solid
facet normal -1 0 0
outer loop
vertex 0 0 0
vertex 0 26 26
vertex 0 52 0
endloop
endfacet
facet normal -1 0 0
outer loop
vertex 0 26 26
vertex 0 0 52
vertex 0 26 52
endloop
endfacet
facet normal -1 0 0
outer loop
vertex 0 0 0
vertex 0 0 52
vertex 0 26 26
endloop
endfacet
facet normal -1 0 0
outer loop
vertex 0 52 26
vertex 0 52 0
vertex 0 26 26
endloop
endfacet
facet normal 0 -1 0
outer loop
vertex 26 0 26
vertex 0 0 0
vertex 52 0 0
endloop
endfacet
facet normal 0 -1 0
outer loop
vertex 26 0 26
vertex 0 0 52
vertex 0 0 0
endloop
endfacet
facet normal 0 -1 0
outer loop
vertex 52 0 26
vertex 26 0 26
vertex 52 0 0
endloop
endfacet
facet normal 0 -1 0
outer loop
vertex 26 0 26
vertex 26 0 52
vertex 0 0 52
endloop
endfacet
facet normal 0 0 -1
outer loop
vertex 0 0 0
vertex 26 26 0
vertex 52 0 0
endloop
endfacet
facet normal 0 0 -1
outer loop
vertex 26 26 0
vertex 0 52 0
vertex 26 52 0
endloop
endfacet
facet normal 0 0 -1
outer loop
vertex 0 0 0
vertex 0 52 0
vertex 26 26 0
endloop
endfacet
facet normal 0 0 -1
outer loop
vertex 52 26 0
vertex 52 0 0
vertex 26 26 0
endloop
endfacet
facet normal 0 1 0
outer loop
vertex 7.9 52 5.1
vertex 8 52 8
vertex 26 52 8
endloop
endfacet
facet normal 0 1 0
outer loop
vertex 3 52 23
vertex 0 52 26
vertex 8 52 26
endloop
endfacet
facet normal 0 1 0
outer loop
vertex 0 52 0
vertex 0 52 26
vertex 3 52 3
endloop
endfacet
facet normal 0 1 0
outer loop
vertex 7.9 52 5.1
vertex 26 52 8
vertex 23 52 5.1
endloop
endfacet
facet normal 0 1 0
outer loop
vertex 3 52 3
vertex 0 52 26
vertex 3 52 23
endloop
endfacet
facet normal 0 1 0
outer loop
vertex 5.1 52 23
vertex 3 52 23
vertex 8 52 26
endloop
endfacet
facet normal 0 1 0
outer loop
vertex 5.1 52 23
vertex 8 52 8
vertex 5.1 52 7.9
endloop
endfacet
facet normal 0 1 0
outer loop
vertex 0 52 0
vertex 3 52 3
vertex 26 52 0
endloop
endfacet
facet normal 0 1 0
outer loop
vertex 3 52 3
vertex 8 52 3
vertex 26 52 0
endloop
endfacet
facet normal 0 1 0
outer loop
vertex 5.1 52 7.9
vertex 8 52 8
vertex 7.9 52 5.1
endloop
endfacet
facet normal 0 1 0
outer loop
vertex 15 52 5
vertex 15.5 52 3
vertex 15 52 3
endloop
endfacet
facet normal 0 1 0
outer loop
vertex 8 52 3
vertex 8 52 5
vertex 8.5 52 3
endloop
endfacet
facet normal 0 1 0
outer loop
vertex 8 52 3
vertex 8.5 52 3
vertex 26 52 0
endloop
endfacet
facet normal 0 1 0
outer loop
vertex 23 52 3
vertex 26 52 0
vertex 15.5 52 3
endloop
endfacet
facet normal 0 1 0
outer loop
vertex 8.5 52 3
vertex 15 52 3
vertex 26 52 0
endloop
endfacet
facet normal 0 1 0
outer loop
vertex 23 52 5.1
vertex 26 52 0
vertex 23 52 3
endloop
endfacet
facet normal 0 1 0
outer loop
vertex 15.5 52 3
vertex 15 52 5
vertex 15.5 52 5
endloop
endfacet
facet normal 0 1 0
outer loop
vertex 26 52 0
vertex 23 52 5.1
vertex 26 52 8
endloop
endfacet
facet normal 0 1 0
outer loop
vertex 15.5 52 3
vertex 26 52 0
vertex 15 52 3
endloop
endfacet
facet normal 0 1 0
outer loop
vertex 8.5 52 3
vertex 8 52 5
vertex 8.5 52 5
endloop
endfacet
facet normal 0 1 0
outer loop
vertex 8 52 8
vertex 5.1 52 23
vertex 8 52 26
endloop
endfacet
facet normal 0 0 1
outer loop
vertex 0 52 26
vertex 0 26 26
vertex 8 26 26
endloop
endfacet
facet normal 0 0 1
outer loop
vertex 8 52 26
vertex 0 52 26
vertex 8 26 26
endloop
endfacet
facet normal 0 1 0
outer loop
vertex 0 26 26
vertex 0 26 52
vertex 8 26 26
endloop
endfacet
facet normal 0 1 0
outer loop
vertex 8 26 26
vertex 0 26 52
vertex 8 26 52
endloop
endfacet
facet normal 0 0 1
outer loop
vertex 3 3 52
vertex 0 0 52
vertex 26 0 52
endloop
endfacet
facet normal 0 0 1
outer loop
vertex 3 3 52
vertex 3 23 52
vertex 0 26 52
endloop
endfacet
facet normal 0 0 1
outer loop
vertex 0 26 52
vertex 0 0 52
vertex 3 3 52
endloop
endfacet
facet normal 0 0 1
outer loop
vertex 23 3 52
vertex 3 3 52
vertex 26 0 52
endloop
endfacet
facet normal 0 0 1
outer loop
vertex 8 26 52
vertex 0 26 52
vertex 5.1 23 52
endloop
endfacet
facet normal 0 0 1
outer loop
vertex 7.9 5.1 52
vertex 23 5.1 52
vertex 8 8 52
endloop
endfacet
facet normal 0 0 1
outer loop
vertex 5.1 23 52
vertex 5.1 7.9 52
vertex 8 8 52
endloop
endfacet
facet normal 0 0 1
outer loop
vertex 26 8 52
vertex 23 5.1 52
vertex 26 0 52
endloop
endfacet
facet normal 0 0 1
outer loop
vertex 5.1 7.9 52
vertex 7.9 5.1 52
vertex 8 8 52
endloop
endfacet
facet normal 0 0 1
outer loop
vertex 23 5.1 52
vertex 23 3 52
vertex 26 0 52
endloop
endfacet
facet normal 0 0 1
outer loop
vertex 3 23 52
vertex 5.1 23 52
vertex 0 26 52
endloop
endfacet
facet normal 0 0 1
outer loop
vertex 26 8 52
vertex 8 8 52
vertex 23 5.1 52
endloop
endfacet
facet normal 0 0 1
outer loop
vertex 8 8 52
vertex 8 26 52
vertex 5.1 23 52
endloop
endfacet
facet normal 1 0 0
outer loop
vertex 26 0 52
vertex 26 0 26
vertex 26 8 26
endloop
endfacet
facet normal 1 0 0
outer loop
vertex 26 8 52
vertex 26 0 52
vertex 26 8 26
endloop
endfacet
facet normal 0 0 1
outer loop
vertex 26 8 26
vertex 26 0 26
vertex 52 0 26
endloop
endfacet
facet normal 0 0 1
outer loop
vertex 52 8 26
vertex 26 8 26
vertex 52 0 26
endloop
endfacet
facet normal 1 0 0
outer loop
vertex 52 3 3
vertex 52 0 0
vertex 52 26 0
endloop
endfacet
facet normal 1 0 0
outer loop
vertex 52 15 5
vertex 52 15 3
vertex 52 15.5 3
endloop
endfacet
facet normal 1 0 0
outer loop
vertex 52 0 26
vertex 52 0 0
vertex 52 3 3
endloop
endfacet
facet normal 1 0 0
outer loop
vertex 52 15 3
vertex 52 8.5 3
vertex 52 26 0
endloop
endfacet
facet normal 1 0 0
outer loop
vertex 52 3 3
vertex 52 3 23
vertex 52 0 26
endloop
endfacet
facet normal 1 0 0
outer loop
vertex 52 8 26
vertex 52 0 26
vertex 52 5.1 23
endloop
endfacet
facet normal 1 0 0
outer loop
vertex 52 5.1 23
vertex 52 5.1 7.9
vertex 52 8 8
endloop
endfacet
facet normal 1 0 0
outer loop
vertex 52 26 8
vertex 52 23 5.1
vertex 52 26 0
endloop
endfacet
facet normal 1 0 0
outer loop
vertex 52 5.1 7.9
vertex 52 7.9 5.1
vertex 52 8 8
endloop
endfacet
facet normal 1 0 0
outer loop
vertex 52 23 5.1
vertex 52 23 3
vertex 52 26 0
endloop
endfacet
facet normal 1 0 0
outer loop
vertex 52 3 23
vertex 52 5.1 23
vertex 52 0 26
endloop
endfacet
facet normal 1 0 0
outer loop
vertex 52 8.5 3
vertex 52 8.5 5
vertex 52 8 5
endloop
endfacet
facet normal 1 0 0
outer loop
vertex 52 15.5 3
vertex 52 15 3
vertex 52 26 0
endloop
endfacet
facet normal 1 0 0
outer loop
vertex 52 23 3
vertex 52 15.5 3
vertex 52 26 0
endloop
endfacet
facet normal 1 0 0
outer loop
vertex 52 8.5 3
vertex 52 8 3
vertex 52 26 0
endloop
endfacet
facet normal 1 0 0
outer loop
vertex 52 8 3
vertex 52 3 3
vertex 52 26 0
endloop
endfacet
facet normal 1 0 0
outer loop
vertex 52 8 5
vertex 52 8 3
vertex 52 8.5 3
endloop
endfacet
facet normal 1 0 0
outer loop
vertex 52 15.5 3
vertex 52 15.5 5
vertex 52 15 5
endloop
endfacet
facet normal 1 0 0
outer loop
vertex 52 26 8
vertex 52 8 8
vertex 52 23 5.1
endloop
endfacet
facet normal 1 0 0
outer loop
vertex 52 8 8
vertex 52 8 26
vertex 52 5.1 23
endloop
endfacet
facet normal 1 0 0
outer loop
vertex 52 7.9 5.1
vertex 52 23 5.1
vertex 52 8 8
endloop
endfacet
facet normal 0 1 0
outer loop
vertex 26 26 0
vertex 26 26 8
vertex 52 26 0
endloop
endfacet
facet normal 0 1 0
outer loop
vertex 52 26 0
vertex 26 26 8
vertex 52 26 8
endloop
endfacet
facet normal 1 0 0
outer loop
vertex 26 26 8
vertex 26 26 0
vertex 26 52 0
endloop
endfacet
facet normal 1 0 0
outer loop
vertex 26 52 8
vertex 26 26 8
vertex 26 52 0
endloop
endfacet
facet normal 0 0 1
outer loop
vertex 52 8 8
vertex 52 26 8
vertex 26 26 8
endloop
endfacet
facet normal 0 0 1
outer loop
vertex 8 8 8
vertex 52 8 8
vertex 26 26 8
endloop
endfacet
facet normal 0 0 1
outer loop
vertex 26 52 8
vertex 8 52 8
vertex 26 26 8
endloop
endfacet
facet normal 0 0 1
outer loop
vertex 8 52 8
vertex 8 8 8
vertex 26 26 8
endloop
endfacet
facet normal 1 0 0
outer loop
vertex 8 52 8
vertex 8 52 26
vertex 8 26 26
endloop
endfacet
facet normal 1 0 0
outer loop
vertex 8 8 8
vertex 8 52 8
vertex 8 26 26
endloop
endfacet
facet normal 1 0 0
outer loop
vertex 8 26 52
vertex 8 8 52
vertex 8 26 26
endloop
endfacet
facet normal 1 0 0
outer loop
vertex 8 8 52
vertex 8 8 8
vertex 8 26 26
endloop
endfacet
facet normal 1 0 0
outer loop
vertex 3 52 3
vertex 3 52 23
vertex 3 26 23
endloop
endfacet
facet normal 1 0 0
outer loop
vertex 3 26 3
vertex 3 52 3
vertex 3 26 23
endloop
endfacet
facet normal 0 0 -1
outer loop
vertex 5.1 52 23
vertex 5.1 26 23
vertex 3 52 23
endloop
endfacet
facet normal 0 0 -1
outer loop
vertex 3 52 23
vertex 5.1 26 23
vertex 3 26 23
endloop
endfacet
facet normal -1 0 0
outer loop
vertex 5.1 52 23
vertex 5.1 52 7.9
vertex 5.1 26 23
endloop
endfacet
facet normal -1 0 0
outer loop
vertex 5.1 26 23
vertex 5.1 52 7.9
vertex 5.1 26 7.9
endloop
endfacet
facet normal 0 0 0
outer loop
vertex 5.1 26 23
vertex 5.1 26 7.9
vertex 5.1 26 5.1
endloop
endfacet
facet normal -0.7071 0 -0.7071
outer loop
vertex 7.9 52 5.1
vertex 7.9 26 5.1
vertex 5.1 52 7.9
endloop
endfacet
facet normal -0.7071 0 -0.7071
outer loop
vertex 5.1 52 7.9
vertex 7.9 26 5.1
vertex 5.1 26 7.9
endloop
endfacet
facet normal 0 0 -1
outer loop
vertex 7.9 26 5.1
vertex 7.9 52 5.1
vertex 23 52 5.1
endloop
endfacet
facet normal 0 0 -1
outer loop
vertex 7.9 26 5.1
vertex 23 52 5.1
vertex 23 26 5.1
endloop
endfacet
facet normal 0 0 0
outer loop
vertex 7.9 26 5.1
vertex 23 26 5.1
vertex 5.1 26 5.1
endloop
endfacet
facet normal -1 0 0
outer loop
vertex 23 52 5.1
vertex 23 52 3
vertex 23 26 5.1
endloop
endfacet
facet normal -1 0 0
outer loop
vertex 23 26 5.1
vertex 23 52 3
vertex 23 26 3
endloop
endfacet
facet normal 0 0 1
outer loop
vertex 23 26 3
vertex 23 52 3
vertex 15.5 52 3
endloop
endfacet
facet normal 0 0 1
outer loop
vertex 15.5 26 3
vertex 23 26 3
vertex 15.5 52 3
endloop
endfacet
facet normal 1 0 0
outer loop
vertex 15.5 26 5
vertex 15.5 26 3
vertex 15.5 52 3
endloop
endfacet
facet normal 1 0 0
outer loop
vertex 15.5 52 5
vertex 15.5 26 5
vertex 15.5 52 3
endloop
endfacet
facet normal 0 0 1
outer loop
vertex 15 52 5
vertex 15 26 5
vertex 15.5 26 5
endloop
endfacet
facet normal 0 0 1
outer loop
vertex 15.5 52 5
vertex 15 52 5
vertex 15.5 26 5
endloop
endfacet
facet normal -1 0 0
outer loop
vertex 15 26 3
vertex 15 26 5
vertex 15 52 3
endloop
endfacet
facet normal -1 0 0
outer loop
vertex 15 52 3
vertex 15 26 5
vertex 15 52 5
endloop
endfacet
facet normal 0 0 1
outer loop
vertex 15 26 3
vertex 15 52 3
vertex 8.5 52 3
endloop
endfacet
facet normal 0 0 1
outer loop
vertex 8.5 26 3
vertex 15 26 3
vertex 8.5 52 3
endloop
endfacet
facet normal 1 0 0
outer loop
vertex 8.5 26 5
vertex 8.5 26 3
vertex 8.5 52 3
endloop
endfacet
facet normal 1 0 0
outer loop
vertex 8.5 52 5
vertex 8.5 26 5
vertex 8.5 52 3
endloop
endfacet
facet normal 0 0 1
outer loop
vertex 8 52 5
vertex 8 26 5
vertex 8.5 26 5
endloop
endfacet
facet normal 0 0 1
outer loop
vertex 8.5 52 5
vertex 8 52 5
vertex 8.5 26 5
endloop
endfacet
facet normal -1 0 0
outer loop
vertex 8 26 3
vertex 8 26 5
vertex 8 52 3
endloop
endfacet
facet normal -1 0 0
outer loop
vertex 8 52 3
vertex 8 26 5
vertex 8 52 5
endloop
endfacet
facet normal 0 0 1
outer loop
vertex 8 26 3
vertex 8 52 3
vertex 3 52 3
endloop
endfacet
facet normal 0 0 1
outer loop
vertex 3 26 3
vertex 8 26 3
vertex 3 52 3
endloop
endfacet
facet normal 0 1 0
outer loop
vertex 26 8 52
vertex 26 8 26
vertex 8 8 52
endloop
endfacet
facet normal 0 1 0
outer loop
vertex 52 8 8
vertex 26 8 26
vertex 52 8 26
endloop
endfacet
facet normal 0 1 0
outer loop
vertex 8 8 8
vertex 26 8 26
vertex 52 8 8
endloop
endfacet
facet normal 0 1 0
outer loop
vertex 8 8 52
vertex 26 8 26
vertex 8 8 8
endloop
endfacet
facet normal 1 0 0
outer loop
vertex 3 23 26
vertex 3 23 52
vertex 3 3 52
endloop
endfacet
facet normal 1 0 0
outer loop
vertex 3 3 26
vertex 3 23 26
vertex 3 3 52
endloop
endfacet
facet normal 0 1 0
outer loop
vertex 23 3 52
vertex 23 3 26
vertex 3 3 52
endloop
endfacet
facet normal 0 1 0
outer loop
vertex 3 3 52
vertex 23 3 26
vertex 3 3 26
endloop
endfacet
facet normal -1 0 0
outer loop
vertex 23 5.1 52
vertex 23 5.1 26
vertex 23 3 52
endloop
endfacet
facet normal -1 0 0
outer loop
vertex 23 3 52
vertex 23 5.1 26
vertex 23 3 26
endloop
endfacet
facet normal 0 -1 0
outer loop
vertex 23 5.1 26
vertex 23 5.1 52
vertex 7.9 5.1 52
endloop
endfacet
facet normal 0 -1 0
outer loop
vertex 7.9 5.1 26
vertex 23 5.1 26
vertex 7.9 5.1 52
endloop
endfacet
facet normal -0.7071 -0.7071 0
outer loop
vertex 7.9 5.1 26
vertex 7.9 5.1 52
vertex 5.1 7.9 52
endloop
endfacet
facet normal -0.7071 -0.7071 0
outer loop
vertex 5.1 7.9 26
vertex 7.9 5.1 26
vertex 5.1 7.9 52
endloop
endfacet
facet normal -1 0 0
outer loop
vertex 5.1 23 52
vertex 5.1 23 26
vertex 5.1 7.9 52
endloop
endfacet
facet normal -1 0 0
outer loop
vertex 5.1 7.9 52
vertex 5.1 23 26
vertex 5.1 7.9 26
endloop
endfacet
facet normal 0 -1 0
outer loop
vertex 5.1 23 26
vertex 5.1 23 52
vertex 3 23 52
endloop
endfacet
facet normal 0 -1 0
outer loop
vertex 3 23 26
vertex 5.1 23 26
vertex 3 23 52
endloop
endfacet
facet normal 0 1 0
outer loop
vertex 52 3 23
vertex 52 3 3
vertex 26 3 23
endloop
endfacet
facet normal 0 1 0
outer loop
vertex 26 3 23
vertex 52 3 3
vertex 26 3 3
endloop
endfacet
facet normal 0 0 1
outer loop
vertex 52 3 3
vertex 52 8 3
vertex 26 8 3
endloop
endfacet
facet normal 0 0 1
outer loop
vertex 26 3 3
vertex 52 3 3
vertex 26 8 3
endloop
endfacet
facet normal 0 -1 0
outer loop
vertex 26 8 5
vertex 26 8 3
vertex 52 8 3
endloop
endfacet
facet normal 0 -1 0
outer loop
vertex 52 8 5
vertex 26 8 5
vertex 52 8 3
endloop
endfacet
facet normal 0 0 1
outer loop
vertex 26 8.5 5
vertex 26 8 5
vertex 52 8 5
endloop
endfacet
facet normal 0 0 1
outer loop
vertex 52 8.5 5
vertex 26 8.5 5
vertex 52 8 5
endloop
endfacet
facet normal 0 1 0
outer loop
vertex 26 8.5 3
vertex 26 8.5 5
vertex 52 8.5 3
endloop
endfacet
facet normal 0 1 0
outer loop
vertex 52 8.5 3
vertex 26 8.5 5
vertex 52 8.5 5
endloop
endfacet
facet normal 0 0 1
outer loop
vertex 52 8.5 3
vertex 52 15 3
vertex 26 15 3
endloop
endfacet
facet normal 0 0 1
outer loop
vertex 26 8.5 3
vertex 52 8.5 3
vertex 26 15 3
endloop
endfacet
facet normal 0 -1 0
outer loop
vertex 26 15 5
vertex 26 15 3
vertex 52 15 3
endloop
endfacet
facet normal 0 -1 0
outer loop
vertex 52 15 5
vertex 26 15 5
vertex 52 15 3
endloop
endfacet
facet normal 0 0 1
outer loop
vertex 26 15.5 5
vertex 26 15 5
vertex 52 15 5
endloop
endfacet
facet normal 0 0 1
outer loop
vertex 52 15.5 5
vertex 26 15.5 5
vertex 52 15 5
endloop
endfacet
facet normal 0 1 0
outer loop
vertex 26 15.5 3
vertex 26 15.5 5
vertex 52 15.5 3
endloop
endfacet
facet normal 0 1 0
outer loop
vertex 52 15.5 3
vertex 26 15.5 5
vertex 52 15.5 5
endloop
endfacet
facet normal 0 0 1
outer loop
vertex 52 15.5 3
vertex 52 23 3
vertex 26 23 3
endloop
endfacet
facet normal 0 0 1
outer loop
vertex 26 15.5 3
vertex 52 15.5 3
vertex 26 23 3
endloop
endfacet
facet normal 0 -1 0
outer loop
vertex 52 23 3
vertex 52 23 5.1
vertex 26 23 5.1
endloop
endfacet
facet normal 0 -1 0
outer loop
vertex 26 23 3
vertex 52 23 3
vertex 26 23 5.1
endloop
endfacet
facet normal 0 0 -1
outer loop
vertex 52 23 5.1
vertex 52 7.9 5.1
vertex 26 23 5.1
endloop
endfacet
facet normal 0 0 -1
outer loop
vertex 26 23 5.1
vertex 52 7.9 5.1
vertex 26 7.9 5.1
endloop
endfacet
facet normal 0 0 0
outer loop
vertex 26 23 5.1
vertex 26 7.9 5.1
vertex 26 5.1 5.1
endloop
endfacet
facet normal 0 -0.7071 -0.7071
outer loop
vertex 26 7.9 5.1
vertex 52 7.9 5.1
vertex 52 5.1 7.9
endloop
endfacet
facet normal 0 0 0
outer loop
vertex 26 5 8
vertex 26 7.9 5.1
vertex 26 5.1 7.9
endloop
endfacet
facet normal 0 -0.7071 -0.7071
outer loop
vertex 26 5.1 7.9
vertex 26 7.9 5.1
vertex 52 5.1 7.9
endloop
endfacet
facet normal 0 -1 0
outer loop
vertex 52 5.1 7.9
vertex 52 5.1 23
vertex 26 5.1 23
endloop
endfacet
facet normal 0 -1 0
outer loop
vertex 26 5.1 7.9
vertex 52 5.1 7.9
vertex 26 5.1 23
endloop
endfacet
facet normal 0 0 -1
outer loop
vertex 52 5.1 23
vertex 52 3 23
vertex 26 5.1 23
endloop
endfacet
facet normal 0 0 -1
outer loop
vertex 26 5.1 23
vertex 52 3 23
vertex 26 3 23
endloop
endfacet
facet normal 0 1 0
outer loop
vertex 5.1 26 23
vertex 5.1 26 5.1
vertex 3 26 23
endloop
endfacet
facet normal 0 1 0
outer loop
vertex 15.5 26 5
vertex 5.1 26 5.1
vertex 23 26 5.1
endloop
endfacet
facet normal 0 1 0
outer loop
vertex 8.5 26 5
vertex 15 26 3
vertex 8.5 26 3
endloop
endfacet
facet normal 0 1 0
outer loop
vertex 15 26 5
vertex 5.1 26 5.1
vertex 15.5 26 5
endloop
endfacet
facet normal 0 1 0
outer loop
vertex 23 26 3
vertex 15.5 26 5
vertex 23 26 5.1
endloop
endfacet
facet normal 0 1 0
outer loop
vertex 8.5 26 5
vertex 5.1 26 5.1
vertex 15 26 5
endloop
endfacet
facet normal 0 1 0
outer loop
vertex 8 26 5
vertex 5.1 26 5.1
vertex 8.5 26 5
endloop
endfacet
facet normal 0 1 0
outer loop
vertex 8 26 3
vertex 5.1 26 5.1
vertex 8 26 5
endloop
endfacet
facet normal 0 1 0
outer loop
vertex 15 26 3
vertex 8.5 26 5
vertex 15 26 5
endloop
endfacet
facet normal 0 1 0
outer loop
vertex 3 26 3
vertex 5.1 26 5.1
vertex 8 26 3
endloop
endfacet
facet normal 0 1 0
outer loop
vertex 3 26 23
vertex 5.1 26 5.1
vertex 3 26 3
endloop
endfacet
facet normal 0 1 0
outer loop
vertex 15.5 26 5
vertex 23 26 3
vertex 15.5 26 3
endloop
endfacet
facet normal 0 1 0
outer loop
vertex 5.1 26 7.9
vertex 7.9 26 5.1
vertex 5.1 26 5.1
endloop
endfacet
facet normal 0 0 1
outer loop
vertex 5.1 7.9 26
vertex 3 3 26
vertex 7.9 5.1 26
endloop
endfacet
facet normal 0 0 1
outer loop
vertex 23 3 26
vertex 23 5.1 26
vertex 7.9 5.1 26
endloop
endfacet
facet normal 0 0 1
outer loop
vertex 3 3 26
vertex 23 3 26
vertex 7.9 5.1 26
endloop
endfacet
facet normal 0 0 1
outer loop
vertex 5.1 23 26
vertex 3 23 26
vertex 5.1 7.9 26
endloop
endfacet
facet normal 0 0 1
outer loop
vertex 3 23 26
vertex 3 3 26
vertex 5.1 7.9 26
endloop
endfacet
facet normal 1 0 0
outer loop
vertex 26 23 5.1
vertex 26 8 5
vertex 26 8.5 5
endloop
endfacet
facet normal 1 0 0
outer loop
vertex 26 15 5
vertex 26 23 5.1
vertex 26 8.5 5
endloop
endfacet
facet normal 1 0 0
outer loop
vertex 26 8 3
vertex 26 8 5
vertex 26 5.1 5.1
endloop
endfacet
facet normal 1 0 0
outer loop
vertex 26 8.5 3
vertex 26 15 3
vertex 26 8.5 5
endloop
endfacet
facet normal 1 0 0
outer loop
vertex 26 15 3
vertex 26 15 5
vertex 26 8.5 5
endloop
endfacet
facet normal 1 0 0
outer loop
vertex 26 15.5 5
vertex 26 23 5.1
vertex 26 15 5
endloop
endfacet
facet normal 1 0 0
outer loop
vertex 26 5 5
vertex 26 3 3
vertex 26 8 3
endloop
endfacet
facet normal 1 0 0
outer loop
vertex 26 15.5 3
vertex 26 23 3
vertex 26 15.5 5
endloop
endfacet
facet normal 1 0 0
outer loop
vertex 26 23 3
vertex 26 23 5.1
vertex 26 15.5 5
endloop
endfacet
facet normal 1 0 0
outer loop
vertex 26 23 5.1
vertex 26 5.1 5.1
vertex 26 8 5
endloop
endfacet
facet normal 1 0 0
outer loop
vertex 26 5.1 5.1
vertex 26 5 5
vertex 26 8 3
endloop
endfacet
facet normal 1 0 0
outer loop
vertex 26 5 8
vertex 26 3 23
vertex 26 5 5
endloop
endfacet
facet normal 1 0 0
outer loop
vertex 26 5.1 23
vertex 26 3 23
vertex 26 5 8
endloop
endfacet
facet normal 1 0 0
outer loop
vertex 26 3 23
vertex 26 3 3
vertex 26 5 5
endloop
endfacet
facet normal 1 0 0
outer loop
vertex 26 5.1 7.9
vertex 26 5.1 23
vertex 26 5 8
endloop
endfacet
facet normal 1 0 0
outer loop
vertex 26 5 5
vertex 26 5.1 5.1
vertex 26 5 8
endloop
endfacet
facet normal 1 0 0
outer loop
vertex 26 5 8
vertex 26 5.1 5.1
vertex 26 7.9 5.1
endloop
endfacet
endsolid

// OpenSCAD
// file: ../PrusaI3/primitives.scad
module triangular_prism_rect(b, h, l, c = false) {
  linear_extrude(height = l, center = c, convexity = 10, twist = 0)
  polygon(points=[[0,0],[b,0],[0,h]], paths=[[0,1,2]]);
}

module triangular_prism(b, h, l, c = false) {
  linear_extrude(height = l, center = c, convexity = 10, twist = 0)
  polygon(points=[[-b/2,0],[b/2,0],[0,h]], paths=[[0,1,2]]);
}
translate([0,15,0]) triangular_prism(4,2,40);
// main file
use <../PrusaI3/primitives.scad>

module connector(w, t, wall) {
  wc = w + 2 * wall;

color("yellow") {translate([wc, wall+5,wall]) cube([wc,0.5,t]);
translate([wc, wall+5+7,wall]) cube([wc,0.5,t]);
}

color("yellow") {translate([ wall+5,wc, wall]) cube([0.5,wc, t]);
translate([wall+5+7,wc,wall]) cube([0.5,wc, t]);
}

//  color("lightblue")
difference() {
    union() {
      cube([wc,wc,wc]);
      difference() {
       cube([2 * wc,2 * wc, wall + t]);
        translate([wc-0.1, wc-0.1, -0.1]) 
			 cube([wc+0.2,wc+0.2, wall + t+.4]);
      }
      difference() {
        cube([2 * wc, wall + t, 2 * wc]);
        translate([wc-0.2, -0.2, wc-0.2]) 
			 cube([wc+0.3, wall + t+.3,wc+0.3]);

      }
      difference() {
        cube([wall + t, 2 * wc, 2 * wc]);
        translate([ -0.1, wc-0.1, wc-0.1]) 
			 cube([wall + t+.2, wc+0.2, wc+0.2]);
      }

      translate([wc,0,0]) cube([wc,wc,wc]);
      translate([0,wc,0]) cube([wc,wc,wc]);
      translate([0,0,wc]) cube([wc,wc,wc]);
    }
translate([wc, wall+t, wall + t]) rotate([90,0,90]) triangular_prism_rect(3,3,wc+.1);


translate([ wall+t,2*wc+.1,  wall + t]) rotate([90,0,0]) triangular_prism_rect(3,3,wc+.1);

translate([wall+t, wall + t,wc]) rotate([0,0,0]) triangular_prism_rect(3,3,wc+.1);

    translate([2*wall+t,2*wall+t,2*wall+t]) cube([2*wc,2*wc,2*wc]);
    union() {
      translate([wc,wall,wall]) cube([wc+0.1+5, w, t+0.1]);
      translate([wc,wall,wall]) cube([wc+0.1+5, t+0.1, w]);
    }
    union() {
      translate([wall,wc,wall]) cube([w, wc+0.1+5, t+0.1]);
      translate([wall,wc,wall]) cube([t+0.1, wc+0.1+5, w]);
    }
    union() {
      translate([wall,wall,wc]) cube([w, t+0.1, wc+0.1+5]);
      translate([wall,wall,wc]) cube([t+0.1, w, wc+0.1+5]);
    }
  }
}

module bar_angle(w, t, len) {
  color("silver")
  union() {
    cube([len, w, t]);
    cube([len, t, w]);
  }
}



w = 20;
wall = 3;
wc = w + 2 * wall;
t = 2;
ta = 1.26; 
depth = 500;
width = 455.4;
connector(w, t, wall);
//translate([-5,-5,0]) rotate([0,0,180]) connector(w, t, wall);
//translate([-5,0,0]) rotate([0,0,90]) connector(w, t, wall);
//translate([0,-5,0]) rotate([0,0,-90]) connector(w, t, wall);


//translate([0,width,0]) rotate([0,0,-90]) connector(w, t, wall);
//translate([depth,0,0]) rotate([0,0,90]) connector(w, t, wall);
//translate([depth,width,0]) rotate([0,0,180]) connector(w, t, wall);
//
//translate([wc,wall,wall]) bar_angle(w, ta, depth - 2 * wc);
//translate([wall,width - wc,wall]) rotate([0,0,-90]) bar_angle(w, ta, width - 2 * wc);
//translate([depth-wc,width-wall ,wall]) rotate([0,0,-180]) bar_angle(w, ta, depth - 2 * wc);
//translate([depth -wall,wc ,wall]) rotate([0,0,90]) bar_angle(w, ta, width - 2 * wc);
